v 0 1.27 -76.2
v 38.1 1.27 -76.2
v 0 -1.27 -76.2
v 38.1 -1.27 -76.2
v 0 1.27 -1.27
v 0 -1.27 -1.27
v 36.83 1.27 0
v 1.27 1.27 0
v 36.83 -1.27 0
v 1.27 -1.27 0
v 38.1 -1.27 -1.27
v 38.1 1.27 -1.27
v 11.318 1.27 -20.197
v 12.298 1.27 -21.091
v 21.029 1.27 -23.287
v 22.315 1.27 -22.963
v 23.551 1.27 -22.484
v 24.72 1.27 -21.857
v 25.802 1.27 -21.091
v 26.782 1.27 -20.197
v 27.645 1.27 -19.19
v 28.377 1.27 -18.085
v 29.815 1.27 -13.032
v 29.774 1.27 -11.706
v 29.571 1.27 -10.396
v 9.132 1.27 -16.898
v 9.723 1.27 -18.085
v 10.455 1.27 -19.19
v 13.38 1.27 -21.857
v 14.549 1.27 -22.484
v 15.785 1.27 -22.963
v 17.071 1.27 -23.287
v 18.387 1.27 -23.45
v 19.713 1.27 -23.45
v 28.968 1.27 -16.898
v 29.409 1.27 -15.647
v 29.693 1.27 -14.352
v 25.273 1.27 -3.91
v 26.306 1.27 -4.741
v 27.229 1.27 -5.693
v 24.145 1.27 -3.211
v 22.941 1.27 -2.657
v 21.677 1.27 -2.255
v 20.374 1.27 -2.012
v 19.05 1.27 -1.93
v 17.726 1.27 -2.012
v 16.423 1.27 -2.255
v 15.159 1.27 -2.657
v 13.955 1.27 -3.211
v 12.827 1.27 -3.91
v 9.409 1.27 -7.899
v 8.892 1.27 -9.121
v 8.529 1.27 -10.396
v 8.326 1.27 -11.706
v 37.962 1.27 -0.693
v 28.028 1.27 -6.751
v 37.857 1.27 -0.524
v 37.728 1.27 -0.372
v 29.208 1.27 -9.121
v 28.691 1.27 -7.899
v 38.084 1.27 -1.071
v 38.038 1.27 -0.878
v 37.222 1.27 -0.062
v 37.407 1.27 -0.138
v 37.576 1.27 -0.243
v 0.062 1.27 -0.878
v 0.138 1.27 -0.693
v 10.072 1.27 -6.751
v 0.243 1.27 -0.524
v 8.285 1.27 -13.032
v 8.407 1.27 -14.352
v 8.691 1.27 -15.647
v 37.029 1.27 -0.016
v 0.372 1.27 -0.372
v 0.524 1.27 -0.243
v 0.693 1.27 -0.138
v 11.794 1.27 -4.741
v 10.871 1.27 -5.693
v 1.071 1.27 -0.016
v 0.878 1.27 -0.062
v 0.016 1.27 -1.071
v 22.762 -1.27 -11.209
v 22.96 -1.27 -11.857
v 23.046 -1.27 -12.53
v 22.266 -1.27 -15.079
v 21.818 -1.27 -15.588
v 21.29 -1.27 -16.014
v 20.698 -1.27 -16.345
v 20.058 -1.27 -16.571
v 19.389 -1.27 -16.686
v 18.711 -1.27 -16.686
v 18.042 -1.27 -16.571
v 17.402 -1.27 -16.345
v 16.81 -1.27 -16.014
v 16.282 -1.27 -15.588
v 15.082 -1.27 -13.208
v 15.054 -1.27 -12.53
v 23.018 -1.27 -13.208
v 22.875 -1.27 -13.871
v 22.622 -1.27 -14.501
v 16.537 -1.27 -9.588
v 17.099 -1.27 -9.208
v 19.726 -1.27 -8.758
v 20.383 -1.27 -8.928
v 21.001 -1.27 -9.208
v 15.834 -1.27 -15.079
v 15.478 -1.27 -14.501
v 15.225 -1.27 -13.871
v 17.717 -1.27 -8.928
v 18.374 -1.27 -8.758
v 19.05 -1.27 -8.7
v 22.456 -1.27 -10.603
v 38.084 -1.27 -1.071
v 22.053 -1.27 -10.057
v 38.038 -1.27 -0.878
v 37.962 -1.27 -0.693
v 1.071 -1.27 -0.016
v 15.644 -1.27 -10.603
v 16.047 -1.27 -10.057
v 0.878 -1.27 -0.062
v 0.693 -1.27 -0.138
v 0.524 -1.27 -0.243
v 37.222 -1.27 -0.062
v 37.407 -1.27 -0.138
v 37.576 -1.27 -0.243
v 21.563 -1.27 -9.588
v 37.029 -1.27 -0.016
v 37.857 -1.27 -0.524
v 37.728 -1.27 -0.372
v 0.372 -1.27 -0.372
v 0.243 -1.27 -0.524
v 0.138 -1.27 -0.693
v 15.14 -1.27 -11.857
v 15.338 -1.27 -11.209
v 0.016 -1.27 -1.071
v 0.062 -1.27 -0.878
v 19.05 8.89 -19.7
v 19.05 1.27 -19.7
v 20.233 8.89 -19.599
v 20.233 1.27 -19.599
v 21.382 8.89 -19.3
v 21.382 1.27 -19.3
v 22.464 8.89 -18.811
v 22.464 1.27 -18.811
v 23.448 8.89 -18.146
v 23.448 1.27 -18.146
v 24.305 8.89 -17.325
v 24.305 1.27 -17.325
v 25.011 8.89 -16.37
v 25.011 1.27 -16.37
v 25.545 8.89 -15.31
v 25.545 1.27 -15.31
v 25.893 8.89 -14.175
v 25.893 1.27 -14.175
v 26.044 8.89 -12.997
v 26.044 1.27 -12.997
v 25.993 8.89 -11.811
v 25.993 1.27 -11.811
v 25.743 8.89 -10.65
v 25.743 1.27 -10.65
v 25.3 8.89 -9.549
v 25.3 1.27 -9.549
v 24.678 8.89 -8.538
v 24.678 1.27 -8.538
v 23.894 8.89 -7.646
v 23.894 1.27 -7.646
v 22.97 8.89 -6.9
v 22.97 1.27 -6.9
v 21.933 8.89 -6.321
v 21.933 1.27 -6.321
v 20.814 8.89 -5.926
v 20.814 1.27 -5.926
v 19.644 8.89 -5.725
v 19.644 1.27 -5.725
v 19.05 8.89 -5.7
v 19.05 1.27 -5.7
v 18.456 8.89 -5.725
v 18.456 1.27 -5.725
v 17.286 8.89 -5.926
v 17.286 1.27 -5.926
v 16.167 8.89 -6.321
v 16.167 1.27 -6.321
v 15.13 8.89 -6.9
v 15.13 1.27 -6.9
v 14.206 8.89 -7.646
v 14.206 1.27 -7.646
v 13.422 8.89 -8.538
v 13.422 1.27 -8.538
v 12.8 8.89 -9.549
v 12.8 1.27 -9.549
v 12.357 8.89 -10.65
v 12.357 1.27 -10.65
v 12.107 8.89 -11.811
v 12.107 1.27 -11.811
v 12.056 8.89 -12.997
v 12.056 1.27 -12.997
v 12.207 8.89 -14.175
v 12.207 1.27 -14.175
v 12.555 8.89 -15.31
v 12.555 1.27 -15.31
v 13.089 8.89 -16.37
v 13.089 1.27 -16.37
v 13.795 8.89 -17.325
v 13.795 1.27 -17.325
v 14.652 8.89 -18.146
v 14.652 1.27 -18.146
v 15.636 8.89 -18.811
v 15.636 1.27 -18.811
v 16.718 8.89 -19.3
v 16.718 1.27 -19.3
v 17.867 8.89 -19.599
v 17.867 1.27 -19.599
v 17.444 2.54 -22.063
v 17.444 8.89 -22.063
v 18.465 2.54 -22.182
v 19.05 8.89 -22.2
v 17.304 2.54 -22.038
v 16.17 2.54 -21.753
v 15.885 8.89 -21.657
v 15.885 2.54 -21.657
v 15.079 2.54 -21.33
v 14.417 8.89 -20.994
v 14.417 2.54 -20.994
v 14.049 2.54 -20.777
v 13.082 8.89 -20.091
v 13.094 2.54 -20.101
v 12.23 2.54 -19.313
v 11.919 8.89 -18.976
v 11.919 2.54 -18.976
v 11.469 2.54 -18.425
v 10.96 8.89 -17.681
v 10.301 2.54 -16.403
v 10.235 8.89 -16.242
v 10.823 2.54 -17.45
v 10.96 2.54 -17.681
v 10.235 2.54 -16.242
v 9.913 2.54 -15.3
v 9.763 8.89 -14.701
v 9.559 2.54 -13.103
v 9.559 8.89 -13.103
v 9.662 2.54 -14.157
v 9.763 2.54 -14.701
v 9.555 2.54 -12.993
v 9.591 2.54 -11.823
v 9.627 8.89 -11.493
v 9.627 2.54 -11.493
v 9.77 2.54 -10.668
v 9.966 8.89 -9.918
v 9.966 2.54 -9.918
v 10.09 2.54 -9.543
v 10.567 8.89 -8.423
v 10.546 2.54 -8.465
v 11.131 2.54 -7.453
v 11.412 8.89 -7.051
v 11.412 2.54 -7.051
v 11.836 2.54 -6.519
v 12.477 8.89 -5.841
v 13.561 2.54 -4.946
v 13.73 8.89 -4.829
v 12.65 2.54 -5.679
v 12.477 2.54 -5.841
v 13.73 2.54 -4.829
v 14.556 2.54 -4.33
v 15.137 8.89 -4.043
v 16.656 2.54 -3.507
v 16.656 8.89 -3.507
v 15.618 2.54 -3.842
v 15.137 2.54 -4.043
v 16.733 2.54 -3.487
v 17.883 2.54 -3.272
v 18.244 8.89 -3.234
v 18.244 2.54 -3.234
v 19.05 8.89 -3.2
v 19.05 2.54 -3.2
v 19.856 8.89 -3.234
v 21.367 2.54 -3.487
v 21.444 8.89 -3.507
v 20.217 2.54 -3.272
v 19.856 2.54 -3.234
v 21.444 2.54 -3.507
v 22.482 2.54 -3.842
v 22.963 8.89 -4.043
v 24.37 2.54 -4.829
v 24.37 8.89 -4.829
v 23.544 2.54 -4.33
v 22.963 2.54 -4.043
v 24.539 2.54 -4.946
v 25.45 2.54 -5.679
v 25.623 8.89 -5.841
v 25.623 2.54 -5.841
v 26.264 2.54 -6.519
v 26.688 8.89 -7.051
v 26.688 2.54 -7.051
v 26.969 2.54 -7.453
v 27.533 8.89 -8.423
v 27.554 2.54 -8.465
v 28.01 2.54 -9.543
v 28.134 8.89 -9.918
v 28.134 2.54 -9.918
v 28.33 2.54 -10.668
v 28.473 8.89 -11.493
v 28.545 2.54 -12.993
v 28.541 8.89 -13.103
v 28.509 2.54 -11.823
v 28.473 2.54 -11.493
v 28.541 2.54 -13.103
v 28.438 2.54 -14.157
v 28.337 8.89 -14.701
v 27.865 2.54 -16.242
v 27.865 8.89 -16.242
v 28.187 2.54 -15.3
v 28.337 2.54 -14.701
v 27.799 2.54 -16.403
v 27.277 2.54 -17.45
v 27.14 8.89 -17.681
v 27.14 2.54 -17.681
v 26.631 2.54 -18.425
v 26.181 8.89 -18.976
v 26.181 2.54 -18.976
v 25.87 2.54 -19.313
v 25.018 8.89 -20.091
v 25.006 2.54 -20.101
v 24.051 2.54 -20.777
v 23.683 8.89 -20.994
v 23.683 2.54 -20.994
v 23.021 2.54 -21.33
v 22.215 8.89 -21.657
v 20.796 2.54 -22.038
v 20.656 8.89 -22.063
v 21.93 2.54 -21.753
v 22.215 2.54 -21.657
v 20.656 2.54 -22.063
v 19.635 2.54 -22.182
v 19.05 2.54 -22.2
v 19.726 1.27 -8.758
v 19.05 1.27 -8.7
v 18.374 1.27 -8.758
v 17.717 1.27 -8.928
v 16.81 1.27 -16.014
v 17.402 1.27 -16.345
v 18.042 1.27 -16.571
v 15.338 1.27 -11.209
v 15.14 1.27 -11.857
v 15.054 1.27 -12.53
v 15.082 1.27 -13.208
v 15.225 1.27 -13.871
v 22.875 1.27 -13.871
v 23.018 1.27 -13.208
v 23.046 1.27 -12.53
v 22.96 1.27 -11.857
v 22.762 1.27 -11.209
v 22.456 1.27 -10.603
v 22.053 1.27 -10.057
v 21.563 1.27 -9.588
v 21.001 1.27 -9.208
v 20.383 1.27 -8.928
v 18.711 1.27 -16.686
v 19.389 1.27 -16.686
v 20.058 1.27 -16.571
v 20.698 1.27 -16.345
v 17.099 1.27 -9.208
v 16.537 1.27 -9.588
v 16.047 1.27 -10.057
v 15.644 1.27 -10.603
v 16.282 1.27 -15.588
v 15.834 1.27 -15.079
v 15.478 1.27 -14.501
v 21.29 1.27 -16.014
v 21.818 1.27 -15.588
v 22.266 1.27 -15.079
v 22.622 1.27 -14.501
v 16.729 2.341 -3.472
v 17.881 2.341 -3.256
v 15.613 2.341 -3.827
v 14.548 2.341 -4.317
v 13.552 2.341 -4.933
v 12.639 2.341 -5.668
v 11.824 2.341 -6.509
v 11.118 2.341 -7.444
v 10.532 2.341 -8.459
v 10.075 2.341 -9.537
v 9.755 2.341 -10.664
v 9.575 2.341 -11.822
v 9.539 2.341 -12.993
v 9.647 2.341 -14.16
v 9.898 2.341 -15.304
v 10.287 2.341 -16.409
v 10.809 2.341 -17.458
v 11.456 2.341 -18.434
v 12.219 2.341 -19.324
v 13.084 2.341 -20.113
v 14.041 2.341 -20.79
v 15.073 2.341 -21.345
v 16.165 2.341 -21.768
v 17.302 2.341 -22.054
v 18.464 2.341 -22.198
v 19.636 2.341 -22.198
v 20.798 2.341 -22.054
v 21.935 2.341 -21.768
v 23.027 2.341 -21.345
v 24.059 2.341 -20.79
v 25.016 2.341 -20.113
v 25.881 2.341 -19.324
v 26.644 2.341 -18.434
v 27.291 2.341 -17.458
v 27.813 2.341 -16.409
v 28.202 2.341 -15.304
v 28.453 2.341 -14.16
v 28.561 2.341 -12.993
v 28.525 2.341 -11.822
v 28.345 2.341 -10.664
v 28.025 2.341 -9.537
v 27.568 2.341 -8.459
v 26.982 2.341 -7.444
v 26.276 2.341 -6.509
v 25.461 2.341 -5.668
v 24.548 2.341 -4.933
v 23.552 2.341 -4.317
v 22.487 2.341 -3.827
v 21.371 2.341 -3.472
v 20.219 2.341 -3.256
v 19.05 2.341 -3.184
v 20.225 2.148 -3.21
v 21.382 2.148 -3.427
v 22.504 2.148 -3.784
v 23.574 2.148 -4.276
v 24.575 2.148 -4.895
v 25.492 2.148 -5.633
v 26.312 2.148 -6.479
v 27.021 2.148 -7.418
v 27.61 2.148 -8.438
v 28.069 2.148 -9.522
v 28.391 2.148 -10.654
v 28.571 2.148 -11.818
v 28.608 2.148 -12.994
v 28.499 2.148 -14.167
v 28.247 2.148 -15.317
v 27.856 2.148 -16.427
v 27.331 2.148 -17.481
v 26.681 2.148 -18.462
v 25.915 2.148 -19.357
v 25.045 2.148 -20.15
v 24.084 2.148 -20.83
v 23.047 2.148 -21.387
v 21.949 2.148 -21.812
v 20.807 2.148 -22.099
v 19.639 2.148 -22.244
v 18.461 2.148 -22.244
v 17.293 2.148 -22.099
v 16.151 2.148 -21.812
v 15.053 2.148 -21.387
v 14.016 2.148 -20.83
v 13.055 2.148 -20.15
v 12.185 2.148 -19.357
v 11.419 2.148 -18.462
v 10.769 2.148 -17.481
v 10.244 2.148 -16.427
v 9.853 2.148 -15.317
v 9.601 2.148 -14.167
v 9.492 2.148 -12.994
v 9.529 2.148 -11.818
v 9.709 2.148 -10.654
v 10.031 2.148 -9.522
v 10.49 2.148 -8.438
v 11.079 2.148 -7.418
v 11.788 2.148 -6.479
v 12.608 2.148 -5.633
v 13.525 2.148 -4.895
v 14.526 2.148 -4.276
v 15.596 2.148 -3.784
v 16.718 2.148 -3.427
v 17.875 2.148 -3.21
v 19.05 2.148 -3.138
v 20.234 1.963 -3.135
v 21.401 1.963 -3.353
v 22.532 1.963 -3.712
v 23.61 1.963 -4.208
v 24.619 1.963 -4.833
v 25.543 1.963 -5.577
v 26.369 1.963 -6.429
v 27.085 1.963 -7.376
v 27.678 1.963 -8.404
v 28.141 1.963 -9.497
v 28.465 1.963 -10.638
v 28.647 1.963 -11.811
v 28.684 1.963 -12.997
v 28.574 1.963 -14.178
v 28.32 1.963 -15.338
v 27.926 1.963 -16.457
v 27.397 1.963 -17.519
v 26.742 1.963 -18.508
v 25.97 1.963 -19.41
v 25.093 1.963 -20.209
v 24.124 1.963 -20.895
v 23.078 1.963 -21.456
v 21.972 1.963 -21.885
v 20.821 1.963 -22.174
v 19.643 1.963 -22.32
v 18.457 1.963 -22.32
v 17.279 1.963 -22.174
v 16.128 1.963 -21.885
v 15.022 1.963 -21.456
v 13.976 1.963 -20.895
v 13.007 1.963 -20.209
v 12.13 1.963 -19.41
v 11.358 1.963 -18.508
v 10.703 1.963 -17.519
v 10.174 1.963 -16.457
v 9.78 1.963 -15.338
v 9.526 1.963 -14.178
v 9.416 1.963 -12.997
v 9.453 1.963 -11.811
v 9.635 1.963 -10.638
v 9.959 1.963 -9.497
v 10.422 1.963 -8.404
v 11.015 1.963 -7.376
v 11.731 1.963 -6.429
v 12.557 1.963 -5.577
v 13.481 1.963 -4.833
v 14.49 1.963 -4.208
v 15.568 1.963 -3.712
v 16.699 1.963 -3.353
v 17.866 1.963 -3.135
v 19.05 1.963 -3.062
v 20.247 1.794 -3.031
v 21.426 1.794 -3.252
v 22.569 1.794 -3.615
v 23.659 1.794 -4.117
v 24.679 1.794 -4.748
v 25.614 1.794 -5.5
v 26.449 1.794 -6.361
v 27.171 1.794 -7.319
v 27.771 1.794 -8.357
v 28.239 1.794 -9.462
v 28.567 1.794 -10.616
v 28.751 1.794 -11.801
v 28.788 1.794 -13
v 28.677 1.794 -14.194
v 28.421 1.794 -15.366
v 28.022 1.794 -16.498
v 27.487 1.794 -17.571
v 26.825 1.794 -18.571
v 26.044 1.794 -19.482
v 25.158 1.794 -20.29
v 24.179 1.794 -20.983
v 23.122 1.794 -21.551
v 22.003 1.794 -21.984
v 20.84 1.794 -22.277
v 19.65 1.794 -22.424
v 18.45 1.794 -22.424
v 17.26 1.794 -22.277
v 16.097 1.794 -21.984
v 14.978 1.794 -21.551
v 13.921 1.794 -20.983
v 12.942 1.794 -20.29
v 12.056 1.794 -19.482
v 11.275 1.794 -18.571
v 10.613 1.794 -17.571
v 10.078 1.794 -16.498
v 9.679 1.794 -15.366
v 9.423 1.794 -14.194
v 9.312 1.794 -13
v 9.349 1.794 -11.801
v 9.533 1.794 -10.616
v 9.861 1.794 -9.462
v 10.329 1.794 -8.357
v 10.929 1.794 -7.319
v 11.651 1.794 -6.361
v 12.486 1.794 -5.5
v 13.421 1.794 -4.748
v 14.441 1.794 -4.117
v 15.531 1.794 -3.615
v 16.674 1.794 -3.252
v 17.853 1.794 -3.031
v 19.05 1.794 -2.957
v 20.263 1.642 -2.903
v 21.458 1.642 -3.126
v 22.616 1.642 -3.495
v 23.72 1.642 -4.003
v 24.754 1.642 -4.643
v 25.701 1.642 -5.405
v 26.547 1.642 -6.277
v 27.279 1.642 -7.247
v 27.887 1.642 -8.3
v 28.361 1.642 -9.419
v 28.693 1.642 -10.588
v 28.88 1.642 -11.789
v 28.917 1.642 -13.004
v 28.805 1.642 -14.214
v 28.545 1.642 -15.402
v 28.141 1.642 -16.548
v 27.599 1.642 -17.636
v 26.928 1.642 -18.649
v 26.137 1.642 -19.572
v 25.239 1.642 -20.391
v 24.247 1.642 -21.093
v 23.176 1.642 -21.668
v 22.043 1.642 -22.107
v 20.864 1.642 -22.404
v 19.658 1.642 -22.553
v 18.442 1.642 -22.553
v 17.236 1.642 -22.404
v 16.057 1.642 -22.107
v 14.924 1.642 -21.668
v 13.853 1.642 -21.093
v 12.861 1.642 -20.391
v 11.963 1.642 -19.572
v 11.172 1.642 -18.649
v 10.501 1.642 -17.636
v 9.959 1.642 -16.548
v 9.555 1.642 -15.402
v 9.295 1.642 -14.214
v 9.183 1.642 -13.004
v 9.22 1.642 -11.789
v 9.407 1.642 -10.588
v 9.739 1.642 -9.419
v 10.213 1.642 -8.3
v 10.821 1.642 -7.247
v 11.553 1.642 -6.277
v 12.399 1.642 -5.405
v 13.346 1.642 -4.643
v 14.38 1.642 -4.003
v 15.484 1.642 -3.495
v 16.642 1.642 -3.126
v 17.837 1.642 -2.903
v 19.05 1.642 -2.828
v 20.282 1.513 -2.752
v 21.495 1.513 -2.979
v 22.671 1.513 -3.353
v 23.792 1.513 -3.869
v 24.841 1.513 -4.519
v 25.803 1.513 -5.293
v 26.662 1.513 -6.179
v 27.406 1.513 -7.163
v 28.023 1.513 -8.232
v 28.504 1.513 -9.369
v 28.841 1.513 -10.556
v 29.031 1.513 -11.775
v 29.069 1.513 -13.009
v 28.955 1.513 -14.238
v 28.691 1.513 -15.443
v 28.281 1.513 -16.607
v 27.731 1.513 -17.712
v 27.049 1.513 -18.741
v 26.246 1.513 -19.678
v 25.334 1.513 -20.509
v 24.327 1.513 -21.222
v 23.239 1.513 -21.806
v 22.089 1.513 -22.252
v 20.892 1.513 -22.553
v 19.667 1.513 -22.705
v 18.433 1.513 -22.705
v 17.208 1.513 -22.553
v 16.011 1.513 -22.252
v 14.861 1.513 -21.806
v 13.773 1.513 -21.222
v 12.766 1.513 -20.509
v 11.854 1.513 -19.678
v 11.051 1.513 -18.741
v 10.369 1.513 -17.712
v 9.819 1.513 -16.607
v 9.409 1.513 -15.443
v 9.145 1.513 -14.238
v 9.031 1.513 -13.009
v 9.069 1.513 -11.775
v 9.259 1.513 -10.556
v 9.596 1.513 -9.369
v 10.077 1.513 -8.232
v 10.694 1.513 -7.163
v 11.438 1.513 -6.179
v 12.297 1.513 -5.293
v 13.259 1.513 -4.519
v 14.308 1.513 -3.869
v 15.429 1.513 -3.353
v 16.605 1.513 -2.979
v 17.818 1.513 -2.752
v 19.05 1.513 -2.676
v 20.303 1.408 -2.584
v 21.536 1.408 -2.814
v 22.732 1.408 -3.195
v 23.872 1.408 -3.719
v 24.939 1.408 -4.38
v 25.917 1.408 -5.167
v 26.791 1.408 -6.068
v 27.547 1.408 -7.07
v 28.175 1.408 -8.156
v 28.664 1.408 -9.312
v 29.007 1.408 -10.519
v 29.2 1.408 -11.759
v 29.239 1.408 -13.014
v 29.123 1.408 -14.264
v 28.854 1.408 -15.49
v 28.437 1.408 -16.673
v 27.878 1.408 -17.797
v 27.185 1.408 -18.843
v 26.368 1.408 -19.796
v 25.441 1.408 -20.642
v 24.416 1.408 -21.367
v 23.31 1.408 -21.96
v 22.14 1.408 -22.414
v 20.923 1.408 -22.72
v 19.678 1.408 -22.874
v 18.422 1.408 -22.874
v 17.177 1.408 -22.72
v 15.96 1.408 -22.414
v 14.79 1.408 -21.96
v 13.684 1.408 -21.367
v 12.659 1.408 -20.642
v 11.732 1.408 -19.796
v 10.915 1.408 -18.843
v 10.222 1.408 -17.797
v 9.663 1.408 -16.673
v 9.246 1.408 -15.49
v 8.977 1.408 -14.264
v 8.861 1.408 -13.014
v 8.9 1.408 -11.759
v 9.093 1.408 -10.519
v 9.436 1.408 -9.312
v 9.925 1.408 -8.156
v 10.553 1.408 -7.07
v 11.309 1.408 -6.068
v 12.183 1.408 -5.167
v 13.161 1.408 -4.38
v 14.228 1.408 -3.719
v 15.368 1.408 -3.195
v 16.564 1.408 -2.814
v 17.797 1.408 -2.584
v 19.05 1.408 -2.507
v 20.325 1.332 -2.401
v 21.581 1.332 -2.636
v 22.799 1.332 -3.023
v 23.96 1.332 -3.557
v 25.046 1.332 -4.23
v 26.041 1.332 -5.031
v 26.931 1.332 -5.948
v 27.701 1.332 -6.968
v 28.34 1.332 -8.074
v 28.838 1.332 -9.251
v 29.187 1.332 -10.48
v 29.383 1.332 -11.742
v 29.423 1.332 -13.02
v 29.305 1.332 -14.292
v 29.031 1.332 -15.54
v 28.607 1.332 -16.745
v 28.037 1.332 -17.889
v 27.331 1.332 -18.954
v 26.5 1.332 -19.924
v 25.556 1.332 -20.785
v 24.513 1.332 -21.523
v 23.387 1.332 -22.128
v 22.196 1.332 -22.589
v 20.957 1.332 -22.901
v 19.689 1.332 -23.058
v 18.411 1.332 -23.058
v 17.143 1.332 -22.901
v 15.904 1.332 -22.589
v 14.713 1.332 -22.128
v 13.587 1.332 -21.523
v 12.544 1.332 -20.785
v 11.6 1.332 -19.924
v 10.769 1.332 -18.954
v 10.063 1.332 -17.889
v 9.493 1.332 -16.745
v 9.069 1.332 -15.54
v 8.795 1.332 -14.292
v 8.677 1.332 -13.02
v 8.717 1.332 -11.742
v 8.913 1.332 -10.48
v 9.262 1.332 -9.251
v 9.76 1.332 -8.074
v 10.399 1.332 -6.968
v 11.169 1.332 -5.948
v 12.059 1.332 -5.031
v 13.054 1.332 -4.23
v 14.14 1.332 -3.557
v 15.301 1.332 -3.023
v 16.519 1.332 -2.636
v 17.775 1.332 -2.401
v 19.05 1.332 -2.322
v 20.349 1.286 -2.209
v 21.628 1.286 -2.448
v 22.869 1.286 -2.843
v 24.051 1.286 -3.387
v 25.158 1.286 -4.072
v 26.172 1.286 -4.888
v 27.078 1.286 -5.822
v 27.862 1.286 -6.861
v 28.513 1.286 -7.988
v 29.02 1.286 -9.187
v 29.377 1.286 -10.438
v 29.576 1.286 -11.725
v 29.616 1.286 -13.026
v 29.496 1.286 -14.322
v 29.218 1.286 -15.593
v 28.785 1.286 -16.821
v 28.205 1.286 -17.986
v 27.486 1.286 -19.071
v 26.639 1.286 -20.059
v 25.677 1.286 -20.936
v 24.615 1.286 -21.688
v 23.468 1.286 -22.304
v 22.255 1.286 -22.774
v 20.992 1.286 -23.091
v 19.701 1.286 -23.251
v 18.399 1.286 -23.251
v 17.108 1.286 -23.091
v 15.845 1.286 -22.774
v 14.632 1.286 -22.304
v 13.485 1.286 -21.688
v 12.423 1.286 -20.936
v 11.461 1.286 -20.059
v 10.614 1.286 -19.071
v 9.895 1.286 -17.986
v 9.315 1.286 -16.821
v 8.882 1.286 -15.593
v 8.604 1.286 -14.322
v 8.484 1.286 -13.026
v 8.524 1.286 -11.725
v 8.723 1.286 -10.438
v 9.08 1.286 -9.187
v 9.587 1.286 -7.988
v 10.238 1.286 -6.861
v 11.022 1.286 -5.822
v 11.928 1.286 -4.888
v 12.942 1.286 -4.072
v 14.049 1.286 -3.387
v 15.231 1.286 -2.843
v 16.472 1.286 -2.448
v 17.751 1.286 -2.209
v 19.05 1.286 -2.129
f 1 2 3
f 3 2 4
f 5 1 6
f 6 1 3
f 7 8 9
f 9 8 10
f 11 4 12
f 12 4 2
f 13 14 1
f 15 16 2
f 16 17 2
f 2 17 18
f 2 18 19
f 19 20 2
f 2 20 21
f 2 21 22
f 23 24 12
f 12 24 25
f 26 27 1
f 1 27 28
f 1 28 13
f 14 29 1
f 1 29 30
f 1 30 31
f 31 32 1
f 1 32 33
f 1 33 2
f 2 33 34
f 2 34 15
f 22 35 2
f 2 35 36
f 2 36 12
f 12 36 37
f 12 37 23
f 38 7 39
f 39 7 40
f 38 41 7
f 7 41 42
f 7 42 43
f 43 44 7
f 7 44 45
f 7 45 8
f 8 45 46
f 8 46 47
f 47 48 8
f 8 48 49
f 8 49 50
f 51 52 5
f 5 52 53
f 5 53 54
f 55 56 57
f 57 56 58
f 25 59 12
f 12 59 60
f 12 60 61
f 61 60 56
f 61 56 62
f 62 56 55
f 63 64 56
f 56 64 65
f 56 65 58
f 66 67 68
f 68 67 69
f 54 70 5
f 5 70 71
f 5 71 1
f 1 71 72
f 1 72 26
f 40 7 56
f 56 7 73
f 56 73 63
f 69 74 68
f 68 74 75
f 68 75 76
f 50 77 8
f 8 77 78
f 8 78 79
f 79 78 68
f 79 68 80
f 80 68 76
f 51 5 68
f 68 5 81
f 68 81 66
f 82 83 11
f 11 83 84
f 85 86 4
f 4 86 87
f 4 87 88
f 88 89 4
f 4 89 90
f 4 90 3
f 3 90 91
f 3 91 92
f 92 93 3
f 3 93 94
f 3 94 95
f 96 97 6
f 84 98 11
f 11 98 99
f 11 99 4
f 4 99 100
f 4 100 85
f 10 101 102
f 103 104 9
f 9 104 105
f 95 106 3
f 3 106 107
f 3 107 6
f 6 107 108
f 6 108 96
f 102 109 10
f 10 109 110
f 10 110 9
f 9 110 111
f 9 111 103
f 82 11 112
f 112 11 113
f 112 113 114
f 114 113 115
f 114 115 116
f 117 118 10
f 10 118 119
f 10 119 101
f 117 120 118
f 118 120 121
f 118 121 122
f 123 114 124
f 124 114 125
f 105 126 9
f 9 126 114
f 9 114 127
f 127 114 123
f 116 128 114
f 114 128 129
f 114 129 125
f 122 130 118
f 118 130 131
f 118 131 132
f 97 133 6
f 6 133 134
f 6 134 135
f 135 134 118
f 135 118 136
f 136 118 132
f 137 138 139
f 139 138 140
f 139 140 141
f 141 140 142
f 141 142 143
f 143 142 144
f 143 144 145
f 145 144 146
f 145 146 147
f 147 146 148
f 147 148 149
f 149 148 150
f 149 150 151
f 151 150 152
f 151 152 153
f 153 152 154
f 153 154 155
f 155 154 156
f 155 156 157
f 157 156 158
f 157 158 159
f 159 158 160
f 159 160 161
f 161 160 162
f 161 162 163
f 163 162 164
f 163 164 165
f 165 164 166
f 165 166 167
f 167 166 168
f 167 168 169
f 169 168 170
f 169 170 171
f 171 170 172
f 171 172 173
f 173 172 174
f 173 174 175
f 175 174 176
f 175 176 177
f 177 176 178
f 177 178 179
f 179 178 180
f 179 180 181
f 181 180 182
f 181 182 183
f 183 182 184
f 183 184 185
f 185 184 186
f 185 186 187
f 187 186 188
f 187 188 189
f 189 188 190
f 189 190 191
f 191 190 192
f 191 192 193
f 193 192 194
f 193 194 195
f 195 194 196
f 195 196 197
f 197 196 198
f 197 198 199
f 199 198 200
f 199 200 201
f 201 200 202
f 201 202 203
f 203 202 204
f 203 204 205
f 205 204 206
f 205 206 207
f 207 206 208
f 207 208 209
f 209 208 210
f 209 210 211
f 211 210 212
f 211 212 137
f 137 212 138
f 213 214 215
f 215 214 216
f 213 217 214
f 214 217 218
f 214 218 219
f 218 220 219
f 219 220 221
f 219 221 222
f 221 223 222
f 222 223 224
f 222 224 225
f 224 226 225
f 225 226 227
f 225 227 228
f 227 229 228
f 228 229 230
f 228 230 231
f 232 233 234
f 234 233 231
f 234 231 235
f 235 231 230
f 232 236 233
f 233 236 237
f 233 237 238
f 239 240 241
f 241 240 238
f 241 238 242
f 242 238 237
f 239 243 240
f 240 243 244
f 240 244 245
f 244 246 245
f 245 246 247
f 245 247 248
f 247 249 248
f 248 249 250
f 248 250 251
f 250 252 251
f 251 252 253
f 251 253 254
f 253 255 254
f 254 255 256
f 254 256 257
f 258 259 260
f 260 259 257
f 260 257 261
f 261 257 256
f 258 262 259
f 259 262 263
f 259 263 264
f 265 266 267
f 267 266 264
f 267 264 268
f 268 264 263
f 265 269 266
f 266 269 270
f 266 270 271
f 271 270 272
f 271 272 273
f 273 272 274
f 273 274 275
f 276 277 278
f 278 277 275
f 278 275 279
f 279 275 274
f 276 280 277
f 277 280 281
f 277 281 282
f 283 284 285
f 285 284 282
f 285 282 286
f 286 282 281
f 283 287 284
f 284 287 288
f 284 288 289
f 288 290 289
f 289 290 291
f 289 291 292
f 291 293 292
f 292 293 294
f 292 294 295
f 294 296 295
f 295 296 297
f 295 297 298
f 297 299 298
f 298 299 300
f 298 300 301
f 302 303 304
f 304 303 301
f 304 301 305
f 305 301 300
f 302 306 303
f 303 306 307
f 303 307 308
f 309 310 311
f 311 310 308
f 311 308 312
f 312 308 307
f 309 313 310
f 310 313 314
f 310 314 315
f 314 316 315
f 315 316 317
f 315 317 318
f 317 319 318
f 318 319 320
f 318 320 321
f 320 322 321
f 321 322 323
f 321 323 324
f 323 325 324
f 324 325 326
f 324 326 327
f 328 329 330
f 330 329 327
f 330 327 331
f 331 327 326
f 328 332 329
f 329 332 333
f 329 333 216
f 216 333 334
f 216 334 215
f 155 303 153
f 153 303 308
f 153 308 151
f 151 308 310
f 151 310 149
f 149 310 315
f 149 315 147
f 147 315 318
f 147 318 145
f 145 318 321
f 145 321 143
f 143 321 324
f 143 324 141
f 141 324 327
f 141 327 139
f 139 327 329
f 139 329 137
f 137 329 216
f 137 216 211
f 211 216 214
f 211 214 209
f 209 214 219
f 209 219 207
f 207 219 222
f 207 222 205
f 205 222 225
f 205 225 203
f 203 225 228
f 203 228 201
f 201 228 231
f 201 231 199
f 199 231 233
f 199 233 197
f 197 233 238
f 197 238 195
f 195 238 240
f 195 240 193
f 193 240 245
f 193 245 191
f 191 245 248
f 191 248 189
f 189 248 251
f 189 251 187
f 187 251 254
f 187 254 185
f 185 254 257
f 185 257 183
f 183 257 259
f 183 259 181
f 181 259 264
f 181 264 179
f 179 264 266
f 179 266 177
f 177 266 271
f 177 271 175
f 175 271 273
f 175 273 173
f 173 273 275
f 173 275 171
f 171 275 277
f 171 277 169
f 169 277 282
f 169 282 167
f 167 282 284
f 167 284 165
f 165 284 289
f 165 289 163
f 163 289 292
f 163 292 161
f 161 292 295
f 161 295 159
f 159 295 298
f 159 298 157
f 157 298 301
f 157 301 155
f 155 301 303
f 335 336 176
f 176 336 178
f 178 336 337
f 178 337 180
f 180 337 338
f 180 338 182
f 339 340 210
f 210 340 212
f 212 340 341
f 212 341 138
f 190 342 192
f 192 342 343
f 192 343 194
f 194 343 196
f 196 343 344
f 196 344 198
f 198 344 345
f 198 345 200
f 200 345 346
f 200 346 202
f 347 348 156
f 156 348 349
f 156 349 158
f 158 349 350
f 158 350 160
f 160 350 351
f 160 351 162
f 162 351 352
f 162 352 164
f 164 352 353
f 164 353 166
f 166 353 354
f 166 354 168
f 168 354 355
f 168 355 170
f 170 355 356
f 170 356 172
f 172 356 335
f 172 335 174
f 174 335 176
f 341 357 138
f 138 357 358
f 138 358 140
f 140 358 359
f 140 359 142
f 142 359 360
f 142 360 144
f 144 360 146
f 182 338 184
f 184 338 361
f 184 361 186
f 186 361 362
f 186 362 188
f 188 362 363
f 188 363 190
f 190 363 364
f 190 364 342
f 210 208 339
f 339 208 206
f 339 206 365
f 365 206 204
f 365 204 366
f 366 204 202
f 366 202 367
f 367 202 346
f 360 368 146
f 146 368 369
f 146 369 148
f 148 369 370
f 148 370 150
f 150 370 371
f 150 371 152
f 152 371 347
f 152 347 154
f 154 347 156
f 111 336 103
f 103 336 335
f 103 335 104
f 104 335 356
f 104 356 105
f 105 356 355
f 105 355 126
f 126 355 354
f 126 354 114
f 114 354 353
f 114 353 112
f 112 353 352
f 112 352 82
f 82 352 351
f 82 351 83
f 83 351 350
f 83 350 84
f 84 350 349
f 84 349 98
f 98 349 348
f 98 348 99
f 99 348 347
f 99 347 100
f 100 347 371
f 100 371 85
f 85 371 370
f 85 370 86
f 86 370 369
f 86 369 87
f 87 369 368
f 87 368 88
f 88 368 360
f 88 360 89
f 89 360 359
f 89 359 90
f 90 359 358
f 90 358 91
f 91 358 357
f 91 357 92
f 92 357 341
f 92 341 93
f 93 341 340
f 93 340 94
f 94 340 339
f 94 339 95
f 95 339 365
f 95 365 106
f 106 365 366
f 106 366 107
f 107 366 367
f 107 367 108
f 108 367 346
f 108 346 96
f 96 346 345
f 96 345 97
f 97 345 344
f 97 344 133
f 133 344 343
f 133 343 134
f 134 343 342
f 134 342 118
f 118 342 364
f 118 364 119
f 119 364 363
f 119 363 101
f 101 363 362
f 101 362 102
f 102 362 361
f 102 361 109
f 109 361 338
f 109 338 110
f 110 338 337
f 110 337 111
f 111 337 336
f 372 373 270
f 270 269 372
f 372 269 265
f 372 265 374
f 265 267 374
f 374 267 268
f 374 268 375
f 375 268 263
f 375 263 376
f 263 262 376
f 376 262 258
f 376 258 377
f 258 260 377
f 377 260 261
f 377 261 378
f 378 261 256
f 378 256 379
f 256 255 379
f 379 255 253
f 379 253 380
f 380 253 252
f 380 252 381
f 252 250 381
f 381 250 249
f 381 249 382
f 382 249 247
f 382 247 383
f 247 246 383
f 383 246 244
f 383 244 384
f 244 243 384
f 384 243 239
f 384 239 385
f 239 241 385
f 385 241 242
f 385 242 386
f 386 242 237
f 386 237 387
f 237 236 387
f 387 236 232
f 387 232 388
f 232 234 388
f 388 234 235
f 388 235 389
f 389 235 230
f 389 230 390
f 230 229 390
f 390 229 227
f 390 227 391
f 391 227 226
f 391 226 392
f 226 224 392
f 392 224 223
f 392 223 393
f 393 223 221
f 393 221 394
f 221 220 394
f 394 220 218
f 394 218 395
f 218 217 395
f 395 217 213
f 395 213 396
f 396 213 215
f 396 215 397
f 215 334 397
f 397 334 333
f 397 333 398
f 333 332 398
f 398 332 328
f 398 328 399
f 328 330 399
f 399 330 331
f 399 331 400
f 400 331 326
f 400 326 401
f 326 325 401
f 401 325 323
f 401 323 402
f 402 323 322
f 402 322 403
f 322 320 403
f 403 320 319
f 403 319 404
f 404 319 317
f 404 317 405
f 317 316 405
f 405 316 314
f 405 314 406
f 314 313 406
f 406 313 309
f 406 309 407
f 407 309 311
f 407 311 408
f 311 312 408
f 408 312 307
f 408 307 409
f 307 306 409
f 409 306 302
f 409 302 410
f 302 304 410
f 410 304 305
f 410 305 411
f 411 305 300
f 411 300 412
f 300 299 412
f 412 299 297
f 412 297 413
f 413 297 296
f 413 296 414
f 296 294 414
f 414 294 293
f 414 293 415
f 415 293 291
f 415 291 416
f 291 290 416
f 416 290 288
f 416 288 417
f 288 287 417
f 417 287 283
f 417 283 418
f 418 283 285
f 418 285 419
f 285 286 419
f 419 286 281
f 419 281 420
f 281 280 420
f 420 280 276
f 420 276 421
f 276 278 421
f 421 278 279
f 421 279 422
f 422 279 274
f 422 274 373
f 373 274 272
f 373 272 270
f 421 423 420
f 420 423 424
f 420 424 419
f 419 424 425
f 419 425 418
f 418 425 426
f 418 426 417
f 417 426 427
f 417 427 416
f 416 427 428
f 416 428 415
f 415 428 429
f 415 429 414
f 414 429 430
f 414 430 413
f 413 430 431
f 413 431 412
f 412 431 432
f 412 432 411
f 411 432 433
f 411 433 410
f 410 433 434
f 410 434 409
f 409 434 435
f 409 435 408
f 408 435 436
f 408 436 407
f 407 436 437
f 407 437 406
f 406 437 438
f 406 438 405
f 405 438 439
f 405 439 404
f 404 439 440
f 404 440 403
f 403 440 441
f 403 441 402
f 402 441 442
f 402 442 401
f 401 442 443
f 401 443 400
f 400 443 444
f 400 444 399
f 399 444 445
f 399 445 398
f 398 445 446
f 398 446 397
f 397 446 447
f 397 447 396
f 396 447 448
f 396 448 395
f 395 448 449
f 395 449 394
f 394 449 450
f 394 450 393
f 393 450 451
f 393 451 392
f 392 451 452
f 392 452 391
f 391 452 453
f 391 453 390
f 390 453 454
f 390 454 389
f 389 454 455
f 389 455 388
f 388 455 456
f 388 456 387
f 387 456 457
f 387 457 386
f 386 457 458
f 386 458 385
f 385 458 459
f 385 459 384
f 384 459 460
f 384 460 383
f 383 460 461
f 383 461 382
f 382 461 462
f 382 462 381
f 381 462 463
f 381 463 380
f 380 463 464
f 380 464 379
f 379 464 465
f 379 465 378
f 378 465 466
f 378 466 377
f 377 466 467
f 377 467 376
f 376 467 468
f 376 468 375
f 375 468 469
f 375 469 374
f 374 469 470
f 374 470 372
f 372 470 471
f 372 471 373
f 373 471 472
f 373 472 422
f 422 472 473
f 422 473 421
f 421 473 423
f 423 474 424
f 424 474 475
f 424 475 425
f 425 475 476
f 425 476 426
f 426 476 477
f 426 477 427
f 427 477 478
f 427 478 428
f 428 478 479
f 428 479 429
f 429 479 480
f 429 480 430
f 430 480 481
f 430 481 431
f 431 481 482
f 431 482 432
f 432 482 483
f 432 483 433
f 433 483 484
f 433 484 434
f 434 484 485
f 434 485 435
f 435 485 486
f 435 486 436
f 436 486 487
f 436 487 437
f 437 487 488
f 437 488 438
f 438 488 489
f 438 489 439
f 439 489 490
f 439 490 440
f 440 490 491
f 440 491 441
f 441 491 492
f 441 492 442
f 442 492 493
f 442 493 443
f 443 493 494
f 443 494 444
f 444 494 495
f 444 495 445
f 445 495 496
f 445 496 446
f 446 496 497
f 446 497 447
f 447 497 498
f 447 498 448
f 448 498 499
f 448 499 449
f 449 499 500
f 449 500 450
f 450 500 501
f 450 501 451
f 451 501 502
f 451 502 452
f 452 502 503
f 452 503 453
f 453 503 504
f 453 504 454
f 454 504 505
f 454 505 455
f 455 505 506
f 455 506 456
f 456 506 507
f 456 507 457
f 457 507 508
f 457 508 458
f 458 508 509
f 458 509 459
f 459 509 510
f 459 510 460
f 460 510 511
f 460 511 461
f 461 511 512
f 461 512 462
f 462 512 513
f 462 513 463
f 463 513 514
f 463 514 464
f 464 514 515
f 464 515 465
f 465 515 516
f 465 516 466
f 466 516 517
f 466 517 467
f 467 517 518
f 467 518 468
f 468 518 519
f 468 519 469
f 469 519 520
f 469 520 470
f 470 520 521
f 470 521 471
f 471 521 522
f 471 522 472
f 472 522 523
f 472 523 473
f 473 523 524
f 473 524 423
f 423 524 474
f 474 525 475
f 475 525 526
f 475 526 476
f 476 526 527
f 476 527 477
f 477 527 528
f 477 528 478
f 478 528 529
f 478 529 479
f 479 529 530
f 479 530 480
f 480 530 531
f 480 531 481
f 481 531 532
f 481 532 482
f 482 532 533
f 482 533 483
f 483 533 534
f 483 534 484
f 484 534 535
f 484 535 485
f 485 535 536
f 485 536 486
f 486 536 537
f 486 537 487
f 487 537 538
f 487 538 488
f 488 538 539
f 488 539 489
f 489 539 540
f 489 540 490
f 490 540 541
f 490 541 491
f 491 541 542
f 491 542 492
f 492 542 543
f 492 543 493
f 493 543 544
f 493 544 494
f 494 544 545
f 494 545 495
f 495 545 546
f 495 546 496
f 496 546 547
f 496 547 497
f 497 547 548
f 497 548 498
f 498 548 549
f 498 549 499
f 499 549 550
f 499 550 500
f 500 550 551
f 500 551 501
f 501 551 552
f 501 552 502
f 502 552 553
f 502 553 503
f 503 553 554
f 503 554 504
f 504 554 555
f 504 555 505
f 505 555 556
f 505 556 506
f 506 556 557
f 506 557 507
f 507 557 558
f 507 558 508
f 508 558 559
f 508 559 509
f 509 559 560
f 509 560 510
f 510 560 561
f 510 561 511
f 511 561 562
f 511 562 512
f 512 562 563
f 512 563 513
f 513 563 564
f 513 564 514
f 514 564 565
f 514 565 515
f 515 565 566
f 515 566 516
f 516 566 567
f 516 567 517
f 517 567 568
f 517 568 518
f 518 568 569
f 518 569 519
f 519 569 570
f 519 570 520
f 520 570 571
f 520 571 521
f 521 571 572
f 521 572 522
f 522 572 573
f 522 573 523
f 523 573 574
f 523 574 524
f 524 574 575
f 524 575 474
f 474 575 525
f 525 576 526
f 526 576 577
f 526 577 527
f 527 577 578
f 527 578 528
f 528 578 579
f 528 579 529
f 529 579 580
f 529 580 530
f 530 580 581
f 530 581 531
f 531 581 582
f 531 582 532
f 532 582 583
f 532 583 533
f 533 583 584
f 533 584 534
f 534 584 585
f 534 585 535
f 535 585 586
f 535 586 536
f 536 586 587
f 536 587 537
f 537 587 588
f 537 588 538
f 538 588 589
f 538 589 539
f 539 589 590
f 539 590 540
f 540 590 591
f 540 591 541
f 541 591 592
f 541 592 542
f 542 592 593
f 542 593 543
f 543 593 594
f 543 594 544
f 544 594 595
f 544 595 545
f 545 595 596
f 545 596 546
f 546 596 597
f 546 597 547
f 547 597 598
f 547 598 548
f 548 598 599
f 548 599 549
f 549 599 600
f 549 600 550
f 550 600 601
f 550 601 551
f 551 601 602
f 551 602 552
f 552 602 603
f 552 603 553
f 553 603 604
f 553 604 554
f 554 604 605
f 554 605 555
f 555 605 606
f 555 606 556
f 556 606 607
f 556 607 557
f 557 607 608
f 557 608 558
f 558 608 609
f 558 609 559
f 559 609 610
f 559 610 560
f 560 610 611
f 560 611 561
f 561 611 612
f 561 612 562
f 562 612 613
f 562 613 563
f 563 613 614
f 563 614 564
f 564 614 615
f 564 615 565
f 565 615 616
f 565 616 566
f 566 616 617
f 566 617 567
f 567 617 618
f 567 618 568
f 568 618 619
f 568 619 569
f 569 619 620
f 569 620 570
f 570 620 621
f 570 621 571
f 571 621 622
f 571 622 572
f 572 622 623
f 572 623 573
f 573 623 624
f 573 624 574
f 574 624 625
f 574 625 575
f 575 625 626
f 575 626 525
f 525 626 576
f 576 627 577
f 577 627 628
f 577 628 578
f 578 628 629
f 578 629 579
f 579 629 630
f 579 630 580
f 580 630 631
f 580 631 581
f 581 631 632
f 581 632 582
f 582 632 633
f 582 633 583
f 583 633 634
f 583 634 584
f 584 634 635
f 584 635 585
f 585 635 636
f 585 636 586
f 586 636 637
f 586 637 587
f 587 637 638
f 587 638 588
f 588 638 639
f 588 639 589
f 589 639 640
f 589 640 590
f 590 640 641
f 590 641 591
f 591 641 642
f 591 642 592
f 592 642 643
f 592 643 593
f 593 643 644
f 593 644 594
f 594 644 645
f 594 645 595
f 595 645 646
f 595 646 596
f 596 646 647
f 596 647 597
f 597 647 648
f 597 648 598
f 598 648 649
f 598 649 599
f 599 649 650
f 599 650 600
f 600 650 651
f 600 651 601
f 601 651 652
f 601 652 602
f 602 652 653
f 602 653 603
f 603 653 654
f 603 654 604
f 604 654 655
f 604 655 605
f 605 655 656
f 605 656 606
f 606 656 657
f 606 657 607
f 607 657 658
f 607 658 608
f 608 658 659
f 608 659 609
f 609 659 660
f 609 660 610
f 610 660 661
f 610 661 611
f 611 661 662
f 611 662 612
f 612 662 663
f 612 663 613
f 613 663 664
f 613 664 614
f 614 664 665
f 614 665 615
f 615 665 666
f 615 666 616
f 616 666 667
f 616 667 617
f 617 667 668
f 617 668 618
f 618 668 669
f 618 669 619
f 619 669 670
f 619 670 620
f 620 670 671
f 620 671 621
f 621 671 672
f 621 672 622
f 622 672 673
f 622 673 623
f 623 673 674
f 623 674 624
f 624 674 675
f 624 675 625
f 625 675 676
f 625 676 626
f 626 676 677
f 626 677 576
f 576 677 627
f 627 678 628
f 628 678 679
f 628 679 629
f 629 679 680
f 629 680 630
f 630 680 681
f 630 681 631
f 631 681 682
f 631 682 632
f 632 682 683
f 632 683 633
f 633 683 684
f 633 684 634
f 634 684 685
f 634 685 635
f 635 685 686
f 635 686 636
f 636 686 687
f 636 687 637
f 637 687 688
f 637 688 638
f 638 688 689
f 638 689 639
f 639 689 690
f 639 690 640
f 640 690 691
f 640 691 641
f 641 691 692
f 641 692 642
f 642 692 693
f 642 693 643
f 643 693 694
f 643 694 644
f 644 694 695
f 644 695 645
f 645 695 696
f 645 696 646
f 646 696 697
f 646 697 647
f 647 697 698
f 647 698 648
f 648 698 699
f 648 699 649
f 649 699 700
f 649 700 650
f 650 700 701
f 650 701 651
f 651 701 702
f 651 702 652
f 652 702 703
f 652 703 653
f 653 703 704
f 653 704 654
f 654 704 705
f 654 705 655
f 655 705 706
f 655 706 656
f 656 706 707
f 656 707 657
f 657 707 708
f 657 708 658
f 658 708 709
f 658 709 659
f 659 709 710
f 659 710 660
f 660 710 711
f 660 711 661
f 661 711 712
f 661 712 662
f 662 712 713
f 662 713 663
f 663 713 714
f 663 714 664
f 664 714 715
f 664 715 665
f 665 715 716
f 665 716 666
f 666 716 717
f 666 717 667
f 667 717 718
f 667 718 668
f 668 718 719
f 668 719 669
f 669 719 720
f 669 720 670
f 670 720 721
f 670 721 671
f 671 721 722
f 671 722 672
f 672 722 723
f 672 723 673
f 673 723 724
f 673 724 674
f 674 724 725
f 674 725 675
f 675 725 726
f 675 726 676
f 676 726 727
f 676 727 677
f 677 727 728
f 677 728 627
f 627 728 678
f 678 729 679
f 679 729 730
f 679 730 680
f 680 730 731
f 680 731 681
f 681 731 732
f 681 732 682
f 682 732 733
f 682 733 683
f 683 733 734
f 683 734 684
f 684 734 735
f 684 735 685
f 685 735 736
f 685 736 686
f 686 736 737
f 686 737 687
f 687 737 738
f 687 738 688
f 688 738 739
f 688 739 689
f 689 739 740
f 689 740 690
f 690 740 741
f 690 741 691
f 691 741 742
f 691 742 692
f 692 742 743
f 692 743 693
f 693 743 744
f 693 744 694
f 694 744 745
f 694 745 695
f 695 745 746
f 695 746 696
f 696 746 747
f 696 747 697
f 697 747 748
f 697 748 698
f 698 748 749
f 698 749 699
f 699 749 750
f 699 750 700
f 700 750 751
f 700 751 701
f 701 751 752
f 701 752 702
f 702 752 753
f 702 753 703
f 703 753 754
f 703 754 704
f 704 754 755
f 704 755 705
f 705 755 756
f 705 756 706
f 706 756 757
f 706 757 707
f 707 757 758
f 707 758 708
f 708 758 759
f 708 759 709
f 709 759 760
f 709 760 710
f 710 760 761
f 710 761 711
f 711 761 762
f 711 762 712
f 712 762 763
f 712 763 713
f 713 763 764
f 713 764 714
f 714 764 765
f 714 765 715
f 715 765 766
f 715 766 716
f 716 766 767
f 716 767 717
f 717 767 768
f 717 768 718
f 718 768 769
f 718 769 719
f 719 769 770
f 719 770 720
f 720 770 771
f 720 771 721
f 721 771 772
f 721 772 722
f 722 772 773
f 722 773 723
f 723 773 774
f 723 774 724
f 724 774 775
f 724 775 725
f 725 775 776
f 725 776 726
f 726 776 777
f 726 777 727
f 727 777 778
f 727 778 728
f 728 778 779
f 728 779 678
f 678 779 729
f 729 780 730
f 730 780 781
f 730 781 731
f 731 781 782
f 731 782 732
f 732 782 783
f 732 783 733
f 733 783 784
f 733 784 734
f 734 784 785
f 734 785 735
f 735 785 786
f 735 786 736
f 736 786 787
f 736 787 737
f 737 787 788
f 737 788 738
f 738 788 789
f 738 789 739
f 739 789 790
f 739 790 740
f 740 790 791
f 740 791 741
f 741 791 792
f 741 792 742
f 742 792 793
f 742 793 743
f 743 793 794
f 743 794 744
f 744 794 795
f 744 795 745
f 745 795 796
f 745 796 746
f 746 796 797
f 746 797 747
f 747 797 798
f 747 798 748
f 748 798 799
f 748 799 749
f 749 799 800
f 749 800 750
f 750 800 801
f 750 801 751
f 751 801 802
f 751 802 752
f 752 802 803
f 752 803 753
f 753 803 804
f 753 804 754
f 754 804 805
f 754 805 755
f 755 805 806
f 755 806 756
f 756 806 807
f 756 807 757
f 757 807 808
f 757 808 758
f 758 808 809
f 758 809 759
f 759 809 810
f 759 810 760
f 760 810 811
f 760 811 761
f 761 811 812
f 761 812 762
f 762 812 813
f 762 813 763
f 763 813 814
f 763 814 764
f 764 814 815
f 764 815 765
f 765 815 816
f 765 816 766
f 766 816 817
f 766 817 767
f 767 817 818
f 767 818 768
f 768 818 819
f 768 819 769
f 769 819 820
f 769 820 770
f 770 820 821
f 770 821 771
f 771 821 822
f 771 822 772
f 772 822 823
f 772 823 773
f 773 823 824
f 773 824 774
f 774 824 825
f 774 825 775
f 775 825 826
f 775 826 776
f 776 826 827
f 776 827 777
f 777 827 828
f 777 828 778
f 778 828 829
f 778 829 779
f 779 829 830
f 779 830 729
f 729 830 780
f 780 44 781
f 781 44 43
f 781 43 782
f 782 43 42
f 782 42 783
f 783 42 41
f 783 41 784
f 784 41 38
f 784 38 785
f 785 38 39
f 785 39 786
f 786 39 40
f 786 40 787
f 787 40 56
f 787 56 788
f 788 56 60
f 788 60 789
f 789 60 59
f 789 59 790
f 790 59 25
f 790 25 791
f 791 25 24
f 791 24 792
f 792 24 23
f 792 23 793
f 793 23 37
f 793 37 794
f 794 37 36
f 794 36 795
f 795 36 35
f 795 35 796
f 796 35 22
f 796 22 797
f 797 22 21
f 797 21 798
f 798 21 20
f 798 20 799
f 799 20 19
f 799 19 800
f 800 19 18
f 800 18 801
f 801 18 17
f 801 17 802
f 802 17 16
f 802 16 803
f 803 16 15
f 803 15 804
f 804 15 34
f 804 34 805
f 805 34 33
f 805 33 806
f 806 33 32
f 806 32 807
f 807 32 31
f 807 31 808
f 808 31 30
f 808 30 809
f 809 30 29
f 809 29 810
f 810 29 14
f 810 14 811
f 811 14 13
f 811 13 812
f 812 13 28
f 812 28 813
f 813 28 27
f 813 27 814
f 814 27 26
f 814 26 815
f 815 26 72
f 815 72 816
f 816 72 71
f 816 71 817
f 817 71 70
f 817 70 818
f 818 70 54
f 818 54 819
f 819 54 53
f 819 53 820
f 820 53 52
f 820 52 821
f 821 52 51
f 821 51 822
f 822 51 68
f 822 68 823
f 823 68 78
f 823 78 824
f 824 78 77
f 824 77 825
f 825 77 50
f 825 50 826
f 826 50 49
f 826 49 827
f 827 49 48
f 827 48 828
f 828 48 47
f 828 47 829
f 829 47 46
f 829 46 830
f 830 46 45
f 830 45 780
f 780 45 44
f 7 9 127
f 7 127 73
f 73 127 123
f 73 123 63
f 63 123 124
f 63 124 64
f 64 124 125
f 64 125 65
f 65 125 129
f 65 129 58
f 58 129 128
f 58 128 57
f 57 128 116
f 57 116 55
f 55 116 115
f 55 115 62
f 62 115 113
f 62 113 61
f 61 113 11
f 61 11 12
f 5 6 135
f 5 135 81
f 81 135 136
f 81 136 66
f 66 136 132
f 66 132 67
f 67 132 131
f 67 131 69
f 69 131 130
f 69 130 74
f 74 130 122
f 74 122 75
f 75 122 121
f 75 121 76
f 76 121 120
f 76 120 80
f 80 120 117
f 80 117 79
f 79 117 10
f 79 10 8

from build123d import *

# Parameters (mm, degrees)
SKETCH1_W           = 38.1
SKETCH1_H           = 76.2
BOSS_EXTRUDE1_DEPTH = 1.27
BOSS_EXTRUDE2_DEPTH = 7.62
CUT_EXTRUDE2_DEPTH  = 7.62
FILLET1_R           = 1.27
FILLET2_R           = 1.27


with BuildPart() as part:
    # Sketch1 → Boss-Extrude1 (new, symmetric)
    with BuildSketch(Plane(origin=(0, 0, 0), x_dir=(1, 0, 0), z_dir=(0, 1, 0))):
        with Locations((19.05, 38.1)):
            Rectangle(SKETCH1_W, SKETCH1_H)
    extrude(amount=BOSS_EXTRUDE1_DEPTH, both=True)

    # Sketch3 → Boss-Extrude2 (add)
    with BuildSketch(Plane(origin=(0, 1.27, 0), x_dir=(1, 0, 0), z_dir=(0, 1, 0))):
        with BuildLine():
            ThreePointArc((28.55, 12.7), (12.332485579, 19.417514421), (19.05, 3.2))
            ThreePointArc((19.05, 3.2), (25.767514421, 5.982485579), (28.55, 12.7))
        make_face()
        with BuildLine():
            ThreePointArc((26.05, 12.7), (23.999747468, 7.750252532), (19.05, 5.7))
            ThreePointArc((19.05, 5.7), (14.100252532, 17.649747468), (26.05, 12.7))
        make_face(mode=Mode.SUBTRACT)
    extrude(amount=BOSS_EXTRUDE2_DEPTH)

    # Sketch3<5> → Cut-Extrude2 (cut)
    with BuildSketch(Plane(origin=(0, 1.27, 0), x_dir=(1, 0, 0), z_dir=(0, 1, 0))):
        with BuildLine():
            ThreePointArc((23.05, 12.7), (16.221572875, 15.528427125), (19.05, 8.7))
            ThreePointArc((19.05, 8.7), (21.878427125, 9.871572875), (23.05, 12.7))
        make_face()
    extrude(amount=-CUT_EXTRUDE2_DEPTH, mode=Mode.SUBTRACT)

    # Fillet1
    fillet1_edges = [part.edges().sort_by_distance(p)[0] for p in [
        (19.05, 1.27, -22.2),
    ]]
    fillet(fillet1_edges, radius=FILLET1_R)

    # Fillet2
    fillet2_edges = [part.edges().sort_by_distance(p)[0] for p in [
        (38.1, 0, 0),
        (0, 0, 0),
    ]]
    fillet(fillet2_edges, radius=FILLET2_R)


solid = part.part
